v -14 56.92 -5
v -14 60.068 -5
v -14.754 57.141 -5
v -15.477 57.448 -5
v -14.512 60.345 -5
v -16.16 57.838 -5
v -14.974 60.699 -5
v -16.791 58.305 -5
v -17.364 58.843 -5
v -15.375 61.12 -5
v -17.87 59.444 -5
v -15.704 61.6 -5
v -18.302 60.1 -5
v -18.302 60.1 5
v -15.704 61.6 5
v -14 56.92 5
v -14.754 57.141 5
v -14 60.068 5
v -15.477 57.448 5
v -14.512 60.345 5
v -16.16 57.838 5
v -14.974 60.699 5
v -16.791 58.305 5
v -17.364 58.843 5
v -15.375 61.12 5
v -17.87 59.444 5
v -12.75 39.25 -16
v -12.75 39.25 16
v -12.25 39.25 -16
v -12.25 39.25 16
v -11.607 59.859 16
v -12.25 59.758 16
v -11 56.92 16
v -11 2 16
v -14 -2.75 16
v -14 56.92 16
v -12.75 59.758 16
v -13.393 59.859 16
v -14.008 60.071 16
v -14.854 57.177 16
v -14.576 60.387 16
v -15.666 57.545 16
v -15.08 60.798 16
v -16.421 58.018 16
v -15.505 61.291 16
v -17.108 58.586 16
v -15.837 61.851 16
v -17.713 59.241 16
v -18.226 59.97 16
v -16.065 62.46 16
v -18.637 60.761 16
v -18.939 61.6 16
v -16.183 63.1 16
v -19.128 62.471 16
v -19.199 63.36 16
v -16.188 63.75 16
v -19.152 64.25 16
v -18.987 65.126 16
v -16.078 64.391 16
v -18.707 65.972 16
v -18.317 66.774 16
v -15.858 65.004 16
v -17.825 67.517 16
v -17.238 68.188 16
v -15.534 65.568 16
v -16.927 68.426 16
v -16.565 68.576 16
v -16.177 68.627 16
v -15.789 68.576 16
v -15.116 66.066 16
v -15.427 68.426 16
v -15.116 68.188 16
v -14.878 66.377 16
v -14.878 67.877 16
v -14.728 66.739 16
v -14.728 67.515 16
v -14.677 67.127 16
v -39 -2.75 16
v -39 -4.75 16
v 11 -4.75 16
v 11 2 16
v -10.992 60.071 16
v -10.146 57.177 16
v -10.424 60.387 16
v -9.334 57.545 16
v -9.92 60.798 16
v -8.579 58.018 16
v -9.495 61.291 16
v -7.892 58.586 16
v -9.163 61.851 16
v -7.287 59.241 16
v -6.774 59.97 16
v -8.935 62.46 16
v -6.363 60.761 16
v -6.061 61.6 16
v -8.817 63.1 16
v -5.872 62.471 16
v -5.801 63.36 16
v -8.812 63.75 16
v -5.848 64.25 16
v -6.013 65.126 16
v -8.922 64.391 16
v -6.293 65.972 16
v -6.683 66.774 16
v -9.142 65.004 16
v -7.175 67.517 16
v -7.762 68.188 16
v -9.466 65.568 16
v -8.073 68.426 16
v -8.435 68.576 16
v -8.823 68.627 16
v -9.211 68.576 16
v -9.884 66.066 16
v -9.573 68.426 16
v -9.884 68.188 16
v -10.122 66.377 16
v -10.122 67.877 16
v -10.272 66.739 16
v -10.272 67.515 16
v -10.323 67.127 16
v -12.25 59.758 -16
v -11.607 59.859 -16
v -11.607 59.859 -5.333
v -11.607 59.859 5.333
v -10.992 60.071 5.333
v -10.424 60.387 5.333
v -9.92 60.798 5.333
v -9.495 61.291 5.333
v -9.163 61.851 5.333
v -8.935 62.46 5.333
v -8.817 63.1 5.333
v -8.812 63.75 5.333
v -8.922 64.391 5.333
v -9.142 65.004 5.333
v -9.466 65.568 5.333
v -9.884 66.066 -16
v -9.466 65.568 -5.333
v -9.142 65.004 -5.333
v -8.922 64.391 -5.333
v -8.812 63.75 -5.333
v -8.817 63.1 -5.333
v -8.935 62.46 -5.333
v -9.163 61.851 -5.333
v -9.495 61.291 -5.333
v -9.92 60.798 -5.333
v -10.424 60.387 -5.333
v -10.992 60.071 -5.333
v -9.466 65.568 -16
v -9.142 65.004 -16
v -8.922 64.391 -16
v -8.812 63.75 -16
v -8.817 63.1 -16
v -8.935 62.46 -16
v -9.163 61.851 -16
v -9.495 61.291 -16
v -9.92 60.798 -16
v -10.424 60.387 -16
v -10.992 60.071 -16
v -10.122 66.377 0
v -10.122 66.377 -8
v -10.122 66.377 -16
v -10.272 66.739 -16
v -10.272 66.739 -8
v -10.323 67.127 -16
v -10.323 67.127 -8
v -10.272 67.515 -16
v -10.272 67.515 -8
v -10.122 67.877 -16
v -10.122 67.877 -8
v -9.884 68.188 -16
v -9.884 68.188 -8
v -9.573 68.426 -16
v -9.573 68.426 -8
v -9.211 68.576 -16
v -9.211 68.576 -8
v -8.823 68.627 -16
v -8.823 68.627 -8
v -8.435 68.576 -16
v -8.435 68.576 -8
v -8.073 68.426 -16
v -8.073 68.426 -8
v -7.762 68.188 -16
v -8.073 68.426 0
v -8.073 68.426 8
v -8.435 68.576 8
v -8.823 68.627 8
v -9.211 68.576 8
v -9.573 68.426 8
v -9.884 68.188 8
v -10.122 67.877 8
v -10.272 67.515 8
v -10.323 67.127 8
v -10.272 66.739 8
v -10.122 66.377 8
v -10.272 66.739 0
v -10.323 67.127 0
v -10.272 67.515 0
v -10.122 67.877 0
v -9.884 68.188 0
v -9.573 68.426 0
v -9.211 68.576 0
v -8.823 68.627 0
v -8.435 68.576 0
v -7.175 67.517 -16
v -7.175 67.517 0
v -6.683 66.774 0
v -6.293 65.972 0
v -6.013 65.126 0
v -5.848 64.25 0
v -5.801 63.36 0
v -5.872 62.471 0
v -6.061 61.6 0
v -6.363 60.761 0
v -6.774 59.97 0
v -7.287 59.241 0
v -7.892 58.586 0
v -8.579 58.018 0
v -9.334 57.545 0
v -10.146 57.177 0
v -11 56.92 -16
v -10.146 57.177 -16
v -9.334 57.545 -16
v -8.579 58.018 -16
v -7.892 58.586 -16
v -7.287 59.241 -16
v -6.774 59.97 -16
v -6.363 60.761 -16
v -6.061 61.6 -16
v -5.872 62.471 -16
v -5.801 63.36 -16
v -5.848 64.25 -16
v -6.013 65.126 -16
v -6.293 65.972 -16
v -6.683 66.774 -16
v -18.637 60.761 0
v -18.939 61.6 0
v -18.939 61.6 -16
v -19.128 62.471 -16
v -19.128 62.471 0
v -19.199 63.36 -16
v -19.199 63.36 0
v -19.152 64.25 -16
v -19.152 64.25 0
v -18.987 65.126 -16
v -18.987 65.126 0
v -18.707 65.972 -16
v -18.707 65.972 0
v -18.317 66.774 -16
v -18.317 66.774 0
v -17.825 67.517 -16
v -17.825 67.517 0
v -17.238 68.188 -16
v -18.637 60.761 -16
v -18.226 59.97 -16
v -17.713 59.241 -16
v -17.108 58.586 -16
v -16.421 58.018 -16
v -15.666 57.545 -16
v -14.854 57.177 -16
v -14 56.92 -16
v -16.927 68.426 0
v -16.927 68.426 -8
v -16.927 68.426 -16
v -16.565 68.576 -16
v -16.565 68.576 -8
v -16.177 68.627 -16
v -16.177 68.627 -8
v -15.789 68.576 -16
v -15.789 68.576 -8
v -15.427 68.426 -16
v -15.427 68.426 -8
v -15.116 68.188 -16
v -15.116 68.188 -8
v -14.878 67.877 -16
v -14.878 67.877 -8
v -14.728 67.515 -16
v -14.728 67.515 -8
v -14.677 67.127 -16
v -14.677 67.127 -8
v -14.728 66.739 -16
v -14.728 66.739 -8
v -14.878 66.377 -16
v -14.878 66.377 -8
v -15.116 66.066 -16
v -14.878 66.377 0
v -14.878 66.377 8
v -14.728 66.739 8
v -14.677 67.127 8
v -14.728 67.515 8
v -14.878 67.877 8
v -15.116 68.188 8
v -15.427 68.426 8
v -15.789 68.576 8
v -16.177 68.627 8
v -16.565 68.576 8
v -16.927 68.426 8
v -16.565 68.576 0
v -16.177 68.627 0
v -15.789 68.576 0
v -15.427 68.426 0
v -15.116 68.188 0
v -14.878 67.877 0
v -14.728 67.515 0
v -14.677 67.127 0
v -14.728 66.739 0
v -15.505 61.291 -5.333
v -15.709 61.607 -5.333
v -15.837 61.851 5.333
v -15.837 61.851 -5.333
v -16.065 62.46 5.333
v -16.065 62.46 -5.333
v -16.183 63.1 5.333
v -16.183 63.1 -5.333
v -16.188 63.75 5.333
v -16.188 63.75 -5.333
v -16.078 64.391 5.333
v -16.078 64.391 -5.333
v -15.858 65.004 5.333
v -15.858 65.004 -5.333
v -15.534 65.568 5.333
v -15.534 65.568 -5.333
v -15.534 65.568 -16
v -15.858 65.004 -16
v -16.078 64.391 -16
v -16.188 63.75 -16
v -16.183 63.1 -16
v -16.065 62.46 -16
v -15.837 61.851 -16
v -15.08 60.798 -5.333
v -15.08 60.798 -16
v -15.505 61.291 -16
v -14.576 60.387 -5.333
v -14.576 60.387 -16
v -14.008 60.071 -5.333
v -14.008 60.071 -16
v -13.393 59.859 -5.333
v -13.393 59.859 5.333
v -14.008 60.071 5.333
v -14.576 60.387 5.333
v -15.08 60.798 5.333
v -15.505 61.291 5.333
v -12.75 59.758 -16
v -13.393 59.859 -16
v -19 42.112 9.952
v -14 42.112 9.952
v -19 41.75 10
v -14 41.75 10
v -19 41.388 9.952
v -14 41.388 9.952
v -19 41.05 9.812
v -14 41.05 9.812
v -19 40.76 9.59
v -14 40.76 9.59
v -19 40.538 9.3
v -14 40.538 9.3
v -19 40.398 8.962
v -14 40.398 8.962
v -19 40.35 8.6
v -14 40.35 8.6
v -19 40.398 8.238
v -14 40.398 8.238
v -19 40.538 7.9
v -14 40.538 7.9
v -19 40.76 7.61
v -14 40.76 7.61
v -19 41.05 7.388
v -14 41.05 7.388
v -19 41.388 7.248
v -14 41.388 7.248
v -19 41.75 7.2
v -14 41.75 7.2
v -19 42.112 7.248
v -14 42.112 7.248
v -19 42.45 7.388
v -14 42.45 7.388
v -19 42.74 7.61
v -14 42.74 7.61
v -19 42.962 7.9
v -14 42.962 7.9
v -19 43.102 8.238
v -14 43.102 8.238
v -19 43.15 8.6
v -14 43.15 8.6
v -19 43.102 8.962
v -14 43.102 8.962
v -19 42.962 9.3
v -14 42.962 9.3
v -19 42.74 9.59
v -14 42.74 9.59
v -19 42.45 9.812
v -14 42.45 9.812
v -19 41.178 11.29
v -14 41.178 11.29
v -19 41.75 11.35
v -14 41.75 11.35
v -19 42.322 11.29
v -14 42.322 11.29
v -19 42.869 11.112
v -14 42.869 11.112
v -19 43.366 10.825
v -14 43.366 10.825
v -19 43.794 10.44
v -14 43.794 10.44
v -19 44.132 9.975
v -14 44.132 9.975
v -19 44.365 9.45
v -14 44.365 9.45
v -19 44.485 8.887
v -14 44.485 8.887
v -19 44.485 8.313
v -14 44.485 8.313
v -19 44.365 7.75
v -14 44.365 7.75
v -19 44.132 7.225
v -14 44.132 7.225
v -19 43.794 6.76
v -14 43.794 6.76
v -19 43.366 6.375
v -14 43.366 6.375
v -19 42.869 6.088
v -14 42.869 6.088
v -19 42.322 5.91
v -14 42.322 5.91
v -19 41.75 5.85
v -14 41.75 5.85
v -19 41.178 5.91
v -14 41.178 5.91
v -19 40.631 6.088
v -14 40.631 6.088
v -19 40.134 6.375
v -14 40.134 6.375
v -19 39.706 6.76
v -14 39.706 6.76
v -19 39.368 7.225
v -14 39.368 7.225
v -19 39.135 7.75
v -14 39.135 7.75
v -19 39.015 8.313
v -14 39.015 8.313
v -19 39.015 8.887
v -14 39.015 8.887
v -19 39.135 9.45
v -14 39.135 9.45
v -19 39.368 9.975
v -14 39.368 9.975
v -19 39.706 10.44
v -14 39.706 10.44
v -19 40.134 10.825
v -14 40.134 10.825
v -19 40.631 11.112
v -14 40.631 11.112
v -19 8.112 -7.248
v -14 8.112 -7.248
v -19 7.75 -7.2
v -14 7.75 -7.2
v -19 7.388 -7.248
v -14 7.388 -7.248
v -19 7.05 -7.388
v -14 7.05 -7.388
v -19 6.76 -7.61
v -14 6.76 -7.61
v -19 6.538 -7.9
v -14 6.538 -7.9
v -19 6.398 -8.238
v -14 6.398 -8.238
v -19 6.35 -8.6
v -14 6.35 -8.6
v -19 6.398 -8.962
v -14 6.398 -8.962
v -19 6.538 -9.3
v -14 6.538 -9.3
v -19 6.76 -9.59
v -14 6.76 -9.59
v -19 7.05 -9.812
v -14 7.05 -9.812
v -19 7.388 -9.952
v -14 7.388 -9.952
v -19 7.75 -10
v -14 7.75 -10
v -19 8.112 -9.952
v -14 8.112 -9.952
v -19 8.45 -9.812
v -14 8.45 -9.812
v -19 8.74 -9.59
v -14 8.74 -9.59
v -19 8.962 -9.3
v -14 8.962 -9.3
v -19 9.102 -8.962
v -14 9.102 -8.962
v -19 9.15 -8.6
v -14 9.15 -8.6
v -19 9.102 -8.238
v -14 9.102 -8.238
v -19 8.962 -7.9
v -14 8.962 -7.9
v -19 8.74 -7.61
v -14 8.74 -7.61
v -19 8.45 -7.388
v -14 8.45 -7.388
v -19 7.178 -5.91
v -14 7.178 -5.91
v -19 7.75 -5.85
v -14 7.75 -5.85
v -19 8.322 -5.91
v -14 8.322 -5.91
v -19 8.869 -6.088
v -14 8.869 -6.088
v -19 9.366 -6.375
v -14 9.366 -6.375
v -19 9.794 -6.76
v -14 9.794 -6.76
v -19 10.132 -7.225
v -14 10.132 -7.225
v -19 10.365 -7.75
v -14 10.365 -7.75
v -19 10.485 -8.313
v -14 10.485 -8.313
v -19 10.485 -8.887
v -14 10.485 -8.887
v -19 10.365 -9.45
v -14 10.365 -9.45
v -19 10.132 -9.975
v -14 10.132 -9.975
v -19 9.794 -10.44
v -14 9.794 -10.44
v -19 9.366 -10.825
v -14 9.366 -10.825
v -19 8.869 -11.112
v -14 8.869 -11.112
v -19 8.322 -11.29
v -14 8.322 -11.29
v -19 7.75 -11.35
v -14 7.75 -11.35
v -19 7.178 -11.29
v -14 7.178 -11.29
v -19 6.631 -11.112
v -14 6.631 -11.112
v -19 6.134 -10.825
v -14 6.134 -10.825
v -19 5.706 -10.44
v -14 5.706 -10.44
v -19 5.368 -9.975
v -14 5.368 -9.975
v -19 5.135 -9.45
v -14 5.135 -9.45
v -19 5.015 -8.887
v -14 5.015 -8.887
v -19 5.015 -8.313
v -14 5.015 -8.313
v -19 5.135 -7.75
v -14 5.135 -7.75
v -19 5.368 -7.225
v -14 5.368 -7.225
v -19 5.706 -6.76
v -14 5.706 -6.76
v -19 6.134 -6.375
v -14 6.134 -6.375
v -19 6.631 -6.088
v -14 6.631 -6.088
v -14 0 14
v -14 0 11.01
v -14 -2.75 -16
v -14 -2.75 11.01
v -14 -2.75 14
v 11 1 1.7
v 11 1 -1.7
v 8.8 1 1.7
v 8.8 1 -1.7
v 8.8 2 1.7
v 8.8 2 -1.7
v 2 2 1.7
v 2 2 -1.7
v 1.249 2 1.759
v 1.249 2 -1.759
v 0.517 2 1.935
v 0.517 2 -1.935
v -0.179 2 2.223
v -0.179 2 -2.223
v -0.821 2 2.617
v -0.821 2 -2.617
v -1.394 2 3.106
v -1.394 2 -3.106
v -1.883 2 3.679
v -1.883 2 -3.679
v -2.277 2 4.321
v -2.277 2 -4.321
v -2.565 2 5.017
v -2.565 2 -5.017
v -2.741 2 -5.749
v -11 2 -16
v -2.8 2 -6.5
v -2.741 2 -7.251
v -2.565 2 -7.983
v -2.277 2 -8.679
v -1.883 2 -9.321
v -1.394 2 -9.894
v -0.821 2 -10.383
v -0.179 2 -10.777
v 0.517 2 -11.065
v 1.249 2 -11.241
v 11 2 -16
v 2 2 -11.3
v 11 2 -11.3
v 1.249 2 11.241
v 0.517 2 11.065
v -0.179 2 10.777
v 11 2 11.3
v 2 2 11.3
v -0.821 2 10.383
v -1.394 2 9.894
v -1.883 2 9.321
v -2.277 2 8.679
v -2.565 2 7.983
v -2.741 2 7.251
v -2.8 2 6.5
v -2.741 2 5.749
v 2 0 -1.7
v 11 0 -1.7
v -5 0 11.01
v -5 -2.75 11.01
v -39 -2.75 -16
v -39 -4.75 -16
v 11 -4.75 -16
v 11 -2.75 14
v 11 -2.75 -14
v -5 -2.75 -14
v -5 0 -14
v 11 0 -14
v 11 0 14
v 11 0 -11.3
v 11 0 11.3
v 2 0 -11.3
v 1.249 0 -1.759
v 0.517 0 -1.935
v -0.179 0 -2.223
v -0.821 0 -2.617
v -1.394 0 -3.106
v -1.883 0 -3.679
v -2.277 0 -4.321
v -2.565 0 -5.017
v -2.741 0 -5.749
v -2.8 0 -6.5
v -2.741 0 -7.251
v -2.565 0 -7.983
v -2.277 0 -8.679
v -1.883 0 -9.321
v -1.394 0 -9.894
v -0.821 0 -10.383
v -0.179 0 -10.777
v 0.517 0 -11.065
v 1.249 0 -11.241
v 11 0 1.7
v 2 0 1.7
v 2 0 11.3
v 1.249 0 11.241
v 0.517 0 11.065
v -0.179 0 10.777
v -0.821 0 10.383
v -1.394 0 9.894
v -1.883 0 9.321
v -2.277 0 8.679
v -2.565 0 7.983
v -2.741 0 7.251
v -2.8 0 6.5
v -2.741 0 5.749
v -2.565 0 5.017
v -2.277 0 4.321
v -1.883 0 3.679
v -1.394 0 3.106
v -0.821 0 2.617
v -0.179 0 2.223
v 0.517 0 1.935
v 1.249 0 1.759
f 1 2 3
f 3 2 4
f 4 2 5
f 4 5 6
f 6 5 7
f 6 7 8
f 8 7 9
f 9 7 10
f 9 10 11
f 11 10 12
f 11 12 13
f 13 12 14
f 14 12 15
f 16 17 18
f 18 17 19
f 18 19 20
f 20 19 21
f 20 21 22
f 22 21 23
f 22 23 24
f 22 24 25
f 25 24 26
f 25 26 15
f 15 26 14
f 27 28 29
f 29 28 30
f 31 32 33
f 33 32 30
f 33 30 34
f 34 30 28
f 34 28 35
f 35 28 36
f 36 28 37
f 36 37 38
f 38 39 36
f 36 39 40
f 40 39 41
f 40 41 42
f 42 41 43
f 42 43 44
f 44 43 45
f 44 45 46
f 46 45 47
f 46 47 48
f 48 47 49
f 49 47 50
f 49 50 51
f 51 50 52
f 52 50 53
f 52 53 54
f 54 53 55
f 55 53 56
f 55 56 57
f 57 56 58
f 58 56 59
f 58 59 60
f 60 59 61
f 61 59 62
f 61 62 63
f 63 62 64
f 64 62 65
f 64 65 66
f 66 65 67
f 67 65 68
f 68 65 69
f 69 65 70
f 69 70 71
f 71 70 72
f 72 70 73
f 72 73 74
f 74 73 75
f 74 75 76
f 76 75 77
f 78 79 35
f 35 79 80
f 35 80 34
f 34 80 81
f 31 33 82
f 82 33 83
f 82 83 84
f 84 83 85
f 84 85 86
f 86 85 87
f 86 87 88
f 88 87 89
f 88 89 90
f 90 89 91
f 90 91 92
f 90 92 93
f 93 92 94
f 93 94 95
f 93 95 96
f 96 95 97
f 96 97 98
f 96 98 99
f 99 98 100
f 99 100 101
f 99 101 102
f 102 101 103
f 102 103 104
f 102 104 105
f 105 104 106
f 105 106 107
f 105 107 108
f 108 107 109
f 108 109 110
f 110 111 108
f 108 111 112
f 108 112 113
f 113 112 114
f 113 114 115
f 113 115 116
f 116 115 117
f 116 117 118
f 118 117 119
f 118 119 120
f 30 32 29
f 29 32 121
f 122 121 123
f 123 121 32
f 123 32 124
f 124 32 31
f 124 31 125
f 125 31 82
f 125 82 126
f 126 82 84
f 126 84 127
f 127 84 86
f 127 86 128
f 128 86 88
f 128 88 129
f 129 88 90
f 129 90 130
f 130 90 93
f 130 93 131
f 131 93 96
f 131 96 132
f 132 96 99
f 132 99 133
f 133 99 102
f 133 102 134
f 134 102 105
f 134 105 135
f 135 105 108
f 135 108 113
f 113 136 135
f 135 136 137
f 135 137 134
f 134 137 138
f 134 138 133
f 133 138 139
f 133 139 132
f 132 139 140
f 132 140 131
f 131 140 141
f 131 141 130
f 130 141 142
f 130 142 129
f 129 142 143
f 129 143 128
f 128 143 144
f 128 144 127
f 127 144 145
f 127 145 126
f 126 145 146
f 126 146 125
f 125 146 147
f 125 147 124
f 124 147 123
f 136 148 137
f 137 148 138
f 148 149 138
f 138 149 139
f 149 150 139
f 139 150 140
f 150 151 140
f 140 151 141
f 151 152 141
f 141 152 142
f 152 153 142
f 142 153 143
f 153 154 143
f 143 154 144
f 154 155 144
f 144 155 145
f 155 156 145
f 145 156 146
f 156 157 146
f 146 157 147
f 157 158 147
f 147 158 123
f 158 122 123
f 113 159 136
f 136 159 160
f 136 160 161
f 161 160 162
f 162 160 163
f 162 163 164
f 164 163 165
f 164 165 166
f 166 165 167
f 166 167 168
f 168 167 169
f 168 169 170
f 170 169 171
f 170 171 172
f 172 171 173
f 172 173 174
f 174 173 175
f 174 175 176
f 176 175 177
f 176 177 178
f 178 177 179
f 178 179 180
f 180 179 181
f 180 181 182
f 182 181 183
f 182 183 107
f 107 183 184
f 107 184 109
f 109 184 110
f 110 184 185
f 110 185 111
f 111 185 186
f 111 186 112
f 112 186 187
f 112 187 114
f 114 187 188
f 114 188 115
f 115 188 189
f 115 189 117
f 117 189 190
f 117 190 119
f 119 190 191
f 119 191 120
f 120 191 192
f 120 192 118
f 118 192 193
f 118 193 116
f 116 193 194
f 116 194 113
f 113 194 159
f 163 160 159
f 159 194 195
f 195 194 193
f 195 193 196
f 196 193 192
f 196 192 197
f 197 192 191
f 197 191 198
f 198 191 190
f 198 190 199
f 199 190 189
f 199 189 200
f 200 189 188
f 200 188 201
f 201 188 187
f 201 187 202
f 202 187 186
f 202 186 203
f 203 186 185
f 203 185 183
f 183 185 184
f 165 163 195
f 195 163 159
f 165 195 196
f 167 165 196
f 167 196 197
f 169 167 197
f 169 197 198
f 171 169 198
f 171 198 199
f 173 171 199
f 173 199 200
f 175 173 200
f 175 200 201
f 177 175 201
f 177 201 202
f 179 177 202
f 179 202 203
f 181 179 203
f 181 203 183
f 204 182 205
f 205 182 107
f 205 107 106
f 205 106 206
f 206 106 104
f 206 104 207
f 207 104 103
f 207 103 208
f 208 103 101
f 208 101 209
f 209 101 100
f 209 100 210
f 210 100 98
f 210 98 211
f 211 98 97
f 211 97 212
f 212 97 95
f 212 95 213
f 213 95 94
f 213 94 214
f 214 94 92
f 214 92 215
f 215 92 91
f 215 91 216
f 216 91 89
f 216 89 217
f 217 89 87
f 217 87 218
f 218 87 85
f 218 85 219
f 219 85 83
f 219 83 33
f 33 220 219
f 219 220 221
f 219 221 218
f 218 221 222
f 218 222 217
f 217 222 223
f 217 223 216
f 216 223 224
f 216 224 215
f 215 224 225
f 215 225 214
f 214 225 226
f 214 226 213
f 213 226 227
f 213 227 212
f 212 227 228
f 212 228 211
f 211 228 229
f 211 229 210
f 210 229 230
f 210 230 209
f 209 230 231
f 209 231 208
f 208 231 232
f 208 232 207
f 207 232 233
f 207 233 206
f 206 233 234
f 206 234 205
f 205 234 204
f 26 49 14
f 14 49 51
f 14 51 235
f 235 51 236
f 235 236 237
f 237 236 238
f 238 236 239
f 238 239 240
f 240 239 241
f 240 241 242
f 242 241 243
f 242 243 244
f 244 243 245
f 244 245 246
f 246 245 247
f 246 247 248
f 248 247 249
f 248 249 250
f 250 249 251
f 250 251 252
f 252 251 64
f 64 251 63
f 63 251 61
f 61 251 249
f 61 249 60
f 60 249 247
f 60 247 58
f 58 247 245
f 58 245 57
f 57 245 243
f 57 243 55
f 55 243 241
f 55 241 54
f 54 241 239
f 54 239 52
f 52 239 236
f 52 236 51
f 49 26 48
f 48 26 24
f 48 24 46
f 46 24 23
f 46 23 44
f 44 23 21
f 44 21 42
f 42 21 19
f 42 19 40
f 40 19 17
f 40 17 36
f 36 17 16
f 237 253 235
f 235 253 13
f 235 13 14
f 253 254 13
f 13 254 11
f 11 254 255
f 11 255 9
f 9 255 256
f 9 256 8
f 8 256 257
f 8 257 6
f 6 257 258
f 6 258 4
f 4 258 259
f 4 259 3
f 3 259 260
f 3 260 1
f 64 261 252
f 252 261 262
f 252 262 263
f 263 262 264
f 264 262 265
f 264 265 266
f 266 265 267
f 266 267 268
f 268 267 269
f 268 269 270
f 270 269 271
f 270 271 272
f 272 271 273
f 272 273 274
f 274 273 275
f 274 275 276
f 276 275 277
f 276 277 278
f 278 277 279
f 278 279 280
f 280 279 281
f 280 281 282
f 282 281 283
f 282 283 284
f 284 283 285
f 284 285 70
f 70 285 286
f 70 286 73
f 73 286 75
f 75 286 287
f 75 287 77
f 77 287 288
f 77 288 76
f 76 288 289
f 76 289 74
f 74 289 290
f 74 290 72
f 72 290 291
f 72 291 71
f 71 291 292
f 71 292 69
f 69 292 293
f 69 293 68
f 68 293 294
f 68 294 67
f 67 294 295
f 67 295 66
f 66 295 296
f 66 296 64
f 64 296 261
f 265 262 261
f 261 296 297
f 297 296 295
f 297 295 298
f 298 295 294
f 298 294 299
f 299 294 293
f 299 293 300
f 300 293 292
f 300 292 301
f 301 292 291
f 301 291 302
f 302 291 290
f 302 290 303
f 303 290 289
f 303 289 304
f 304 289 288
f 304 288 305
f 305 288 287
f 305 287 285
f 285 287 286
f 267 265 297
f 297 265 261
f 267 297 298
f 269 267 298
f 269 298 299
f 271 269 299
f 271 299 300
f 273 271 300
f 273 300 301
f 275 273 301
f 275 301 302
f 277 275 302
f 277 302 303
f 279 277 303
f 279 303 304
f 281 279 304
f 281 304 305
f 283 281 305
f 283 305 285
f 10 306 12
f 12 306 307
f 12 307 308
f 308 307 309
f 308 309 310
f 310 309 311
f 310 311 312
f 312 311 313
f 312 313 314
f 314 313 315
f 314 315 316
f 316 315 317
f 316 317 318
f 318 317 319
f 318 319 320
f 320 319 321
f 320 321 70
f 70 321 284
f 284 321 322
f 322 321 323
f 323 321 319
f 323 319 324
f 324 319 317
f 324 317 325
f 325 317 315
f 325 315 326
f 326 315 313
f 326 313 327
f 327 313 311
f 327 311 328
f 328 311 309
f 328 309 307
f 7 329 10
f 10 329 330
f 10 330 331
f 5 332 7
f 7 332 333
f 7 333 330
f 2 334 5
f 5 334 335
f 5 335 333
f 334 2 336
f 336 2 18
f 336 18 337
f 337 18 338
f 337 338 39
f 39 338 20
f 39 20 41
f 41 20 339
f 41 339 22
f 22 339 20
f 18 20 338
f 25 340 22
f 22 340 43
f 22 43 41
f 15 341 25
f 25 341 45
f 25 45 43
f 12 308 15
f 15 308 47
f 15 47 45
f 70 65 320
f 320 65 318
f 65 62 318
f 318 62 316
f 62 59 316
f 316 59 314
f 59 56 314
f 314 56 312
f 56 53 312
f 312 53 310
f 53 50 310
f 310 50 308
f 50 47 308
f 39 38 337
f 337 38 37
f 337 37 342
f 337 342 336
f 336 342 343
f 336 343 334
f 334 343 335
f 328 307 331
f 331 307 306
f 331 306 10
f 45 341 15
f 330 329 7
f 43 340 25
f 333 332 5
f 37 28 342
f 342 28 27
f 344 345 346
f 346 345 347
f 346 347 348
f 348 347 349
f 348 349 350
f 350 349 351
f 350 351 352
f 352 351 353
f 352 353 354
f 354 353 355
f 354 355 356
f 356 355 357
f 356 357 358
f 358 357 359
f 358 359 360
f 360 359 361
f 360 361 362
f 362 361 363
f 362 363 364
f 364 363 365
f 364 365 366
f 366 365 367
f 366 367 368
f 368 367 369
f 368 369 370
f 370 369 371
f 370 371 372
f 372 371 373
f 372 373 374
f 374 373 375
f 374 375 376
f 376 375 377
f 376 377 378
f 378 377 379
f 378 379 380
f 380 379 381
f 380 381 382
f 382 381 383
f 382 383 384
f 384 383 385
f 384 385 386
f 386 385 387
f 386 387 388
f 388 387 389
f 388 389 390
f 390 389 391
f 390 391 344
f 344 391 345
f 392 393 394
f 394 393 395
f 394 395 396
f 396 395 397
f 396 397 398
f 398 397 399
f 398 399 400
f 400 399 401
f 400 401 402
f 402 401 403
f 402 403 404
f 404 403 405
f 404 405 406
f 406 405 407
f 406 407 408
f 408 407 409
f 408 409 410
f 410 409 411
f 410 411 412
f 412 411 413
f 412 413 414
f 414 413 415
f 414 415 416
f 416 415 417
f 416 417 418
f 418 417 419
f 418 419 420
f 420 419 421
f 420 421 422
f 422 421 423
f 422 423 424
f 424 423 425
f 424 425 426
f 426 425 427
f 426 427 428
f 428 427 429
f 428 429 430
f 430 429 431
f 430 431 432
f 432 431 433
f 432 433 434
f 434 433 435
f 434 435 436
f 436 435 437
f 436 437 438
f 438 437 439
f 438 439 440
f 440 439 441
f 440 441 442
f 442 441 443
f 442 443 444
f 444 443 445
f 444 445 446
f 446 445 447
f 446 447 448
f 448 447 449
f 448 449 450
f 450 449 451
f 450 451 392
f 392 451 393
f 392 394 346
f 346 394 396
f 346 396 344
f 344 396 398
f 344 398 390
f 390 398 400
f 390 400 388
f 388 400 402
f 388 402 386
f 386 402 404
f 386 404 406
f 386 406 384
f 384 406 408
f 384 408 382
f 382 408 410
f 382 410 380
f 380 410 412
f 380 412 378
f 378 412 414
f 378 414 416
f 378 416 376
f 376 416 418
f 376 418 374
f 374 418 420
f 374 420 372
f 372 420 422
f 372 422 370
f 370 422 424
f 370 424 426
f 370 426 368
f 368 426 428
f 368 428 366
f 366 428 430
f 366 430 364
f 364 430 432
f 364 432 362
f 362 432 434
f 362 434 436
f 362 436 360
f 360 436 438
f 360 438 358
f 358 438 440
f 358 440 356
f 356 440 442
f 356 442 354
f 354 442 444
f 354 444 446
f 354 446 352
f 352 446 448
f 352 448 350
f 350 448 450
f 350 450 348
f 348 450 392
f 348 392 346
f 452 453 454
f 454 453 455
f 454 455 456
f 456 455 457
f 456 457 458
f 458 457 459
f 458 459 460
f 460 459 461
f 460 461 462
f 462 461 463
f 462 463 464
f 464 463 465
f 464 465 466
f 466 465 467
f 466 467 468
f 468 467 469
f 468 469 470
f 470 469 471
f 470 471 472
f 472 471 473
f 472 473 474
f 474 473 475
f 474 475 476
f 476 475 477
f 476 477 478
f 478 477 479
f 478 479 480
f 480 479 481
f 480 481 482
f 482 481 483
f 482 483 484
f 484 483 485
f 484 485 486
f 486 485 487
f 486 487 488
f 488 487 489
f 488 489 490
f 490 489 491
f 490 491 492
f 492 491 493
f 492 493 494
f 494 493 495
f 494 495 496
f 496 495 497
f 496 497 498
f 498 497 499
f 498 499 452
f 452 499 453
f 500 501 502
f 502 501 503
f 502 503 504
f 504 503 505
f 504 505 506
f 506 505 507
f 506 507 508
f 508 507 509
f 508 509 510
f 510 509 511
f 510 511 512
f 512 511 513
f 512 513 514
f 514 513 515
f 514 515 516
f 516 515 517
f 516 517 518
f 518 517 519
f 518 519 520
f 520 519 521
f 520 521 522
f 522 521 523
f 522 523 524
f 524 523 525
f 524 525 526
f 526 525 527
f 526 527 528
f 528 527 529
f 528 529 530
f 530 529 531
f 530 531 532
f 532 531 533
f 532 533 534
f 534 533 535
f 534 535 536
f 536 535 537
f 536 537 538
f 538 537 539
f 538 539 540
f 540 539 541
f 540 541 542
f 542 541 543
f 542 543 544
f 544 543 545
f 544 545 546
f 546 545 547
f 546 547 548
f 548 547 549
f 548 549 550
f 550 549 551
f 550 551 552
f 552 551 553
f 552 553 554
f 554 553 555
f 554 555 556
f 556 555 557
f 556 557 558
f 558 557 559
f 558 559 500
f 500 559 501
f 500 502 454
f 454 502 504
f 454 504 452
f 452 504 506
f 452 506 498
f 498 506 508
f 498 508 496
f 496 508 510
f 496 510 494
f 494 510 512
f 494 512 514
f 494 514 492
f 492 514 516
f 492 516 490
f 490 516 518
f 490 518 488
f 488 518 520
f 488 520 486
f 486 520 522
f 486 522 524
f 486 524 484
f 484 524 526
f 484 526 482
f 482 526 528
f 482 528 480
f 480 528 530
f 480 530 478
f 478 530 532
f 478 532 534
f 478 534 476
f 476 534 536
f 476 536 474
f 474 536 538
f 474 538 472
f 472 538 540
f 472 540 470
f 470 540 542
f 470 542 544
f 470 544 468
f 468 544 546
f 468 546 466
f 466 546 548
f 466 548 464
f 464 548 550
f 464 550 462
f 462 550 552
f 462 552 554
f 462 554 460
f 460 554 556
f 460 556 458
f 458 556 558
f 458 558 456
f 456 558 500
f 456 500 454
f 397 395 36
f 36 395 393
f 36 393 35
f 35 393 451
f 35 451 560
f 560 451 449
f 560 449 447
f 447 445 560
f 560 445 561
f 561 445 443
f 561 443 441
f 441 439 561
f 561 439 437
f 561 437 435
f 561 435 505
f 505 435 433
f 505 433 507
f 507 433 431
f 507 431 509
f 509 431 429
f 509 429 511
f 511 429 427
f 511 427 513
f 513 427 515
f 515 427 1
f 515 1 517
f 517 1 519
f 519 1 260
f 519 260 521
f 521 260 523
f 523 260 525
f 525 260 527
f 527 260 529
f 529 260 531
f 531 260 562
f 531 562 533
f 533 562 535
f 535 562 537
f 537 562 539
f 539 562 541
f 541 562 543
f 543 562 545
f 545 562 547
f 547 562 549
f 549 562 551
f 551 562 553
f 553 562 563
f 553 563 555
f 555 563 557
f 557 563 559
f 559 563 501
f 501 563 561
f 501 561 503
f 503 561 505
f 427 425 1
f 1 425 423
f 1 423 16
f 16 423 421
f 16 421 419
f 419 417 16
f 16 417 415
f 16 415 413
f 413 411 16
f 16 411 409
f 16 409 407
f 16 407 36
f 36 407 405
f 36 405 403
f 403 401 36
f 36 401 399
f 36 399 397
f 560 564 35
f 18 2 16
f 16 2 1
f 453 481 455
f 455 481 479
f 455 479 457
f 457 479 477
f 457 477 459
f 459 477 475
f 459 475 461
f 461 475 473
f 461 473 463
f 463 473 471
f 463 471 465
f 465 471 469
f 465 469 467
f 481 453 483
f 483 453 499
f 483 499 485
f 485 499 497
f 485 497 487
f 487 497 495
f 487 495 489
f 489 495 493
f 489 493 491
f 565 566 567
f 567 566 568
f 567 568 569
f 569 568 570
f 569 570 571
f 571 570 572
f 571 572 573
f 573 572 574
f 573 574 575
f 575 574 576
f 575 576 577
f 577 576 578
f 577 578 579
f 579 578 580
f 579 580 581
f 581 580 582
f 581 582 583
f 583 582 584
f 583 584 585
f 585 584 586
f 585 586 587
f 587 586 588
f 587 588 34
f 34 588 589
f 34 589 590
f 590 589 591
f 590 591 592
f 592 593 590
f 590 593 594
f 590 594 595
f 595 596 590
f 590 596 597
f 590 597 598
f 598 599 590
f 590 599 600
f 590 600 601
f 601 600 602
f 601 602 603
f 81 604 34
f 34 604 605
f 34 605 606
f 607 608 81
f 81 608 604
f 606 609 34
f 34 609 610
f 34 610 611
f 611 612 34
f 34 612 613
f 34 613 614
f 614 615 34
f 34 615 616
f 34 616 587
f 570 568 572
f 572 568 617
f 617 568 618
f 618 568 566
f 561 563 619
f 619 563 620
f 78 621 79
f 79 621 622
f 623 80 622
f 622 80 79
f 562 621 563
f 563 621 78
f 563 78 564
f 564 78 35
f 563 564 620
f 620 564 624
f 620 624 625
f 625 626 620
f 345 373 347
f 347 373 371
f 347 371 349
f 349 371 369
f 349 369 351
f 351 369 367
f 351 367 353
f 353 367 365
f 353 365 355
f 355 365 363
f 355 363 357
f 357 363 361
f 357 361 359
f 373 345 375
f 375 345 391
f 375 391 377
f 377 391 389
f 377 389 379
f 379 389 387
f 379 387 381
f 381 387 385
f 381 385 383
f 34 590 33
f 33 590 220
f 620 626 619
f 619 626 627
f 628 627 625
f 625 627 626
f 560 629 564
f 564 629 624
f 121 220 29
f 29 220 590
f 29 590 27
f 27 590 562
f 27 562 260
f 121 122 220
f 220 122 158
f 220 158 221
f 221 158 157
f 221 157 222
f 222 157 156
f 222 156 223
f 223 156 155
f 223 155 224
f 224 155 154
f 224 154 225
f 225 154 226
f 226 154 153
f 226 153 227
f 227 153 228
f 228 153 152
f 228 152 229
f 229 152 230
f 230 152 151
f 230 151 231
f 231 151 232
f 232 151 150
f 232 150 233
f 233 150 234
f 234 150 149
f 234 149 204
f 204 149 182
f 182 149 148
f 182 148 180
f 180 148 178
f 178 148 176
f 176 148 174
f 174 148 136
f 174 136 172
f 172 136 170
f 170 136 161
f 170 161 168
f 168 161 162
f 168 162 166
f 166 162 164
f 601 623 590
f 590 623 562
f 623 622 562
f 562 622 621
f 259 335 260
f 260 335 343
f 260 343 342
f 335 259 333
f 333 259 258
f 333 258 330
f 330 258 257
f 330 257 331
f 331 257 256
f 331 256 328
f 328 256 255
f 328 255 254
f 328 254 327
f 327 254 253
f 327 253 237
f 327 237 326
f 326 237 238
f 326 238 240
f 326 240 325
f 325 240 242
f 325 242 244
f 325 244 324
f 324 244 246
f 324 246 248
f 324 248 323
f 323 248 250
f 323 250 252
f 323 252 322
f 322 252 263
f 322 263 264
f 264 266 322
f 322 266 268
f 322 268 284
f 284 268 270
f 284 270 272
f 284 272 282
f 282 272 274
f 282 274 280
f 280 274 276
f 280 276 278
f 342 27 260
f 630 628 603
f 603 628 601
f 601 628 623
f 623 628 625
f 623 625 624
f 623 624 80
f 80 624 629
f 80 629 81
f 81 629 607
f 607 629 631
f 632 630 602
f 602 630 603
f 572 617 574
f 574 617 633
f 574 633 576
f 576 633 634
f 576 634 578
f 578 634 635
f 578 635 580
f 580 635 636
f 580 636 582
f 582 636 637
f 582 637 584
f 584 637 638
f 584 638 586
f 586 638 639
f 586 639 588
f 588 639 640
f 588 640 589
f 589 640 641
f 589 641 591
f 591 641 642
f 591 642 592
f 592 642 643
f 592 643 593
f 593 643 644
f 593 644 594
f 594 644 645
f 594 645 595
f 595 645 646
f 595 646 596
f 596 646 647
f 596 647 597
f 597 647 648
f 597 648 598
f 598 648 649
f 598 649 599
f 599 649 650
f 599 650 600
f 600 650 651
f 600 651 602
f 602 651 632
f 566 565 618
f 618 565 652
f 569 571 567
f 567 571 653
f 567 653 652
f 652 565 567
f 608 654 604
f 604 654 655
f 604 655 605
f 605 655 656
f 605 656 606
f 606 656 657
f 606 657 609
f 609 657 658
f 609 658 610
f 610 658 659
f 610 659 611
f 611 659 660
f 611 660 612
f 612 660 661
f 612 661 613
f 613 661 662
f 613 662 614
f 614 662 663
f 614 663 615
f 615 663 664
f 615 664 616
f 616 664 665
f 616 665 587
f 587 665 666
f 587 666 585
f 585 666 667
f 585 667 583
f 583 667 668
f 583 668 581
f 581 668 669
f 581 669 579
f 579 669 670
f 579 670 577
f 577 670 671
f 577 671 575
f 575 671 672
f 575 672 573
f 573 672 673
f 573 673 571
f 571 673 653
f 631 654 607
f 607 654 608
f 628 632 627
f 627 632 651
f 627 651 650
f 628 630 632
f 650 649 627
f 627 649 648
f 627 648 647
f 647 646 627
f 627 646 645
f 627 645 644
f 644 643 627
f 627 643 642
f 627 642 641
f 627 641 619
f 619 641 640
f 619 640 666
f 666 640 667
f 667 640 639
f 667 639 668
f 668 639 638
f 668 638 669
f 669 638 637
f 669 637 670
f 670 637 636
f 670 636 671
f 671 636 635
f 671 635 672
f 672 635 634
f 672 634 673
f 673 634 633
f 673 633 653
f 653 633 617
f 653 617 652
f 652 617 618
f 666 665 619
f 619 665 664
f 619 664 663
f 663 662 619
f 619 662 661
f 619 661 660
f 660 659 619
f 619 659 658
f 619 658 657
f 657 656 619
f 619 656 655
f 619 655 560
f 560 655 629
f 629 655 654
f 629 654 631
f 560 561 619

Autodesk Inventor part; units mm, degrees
ref_plane "YZ Plane" through (0, 0, 0) normal (1, 0, 0) x (0, 1, 0)
ref_plane "XZ Plane" through (0, 0, 0) normal (0, 1, 0) x (-1, 0, 0)
ref_plane "XY Plane" through (0, 0, 0) normal (0, 0, 1) x (1, 0, 0)
sketch "Sketch1" plane through (0, 0, 0) normal (0, 1, 0) x (-1, 0, 0)
  line L0 (11, -16) -> (-11, -16)
  line L1 (-11, -16) -> (-11, 16)
  line L2 (-11, 16) -> (11, 16)
  line L3 (11, 16) -> (11, -16)
  line L4 (11, -16) -> (-11, 16) construction
  line L5 (-11, -16) -> (11, 16) construction
  circle A0 centre (-2, 6.5) radius 4.8
  line L6 (-2, 6.5) -> (-2, -6.5)
  circle A1 centre (-2, -6.5) radius 4.8
  line L7 (-2, 11.3) -> (-11, 11.3)
  line L8 (-2, 1.7) -> (-11, 1.7)
  line L9 (-2, -1.7) -> (-11, -1.7)
  line L10 (-2, -11.3) -> (-11, -11.3)
  point P0 (0, 0)
  point P1 (-2, 0)
  dimension "d0" = 22
  dimension "d1" = 32
  dimension "d2" = 9.6
  dimension "d3" = 13
  dimension "d4" = 9.6
extrude "Extrusion1" add sketch "Sketch1" along normal blind 2 contours L0 L1 L10 A1 L6 A0 L7 L2 L3 | L1 L8 L6 L9
sketch "Sketch2" plane through (0, 0, 0) normal (0, -1, 0) x (1, 0, 0)
  line L0 (-11, 16) -> (11, 16) projected
  line L1 (11, 16) -> (-11, 16)
  line L2 (-11, -16) -> (-11, 16) projected
  line L3 (-11, 16) -> (-11, -16)
  line L4 (11, -16) -> (-11, -16) projected
  line L5 (-11, -16) -> (11, -16)
  line L6 (11, -16) -> (11, -14)
  line L7 (11, -11.3) -> (11, -16) projected
  line L8 (11, -14) -> (-5, -14)
  line L9 (-5, -14) -> (-5, 14)
  line L10 (-5, 14) -> (11, 14)
  line L11 (11, 16) -> (11, 11.3) projected
  point P0 (0, 0)
  dimension "d7" = 2
  dimension "d8" = 16
  dimension "d9" = 28
extrude "Extrusion2" add sketch "Sketch2" along normal blind 2.75
sketch "Sketch3" plane through (-11, 2, -16) normal (-1, 0, 0) x (0, 0, 1)
  line L0 (0, 0) -> (0, -4.75) projected
  line L1 (0, -4.75) -> (32, -4.75)
  line L2 (32, -4.75) -> (32, 49.75)
  line L3 (32, 49.75) -> (0, 49.75)
  line L4 (0, 49.75) -> (0, -4.75)
  point P0 (16, -2)
  dimension "d12" = 54.5
extrude "Extrusion3" add sketch "Sketch3" along normal blind 3
sketch "Sketch4" plane through (0, -2.75, 0) normal (0, -1, 0) x (1, 0, 0)
  line L0 (11, 16) -> (11, 11.3) projected
  line L1 (11, 16) -> (-39, 16)
  line L2 (-39, 16) -> (-39, -16)
  line L3 (-39, -16) -> (11, -16)
  line L4 (11, -16) -> (11, 16)
  point P0 (0, 0)
  dimension "d15" = 50
extrude "Extrusion4" add sketch "Sketch4" along normal blind 2
sketch "Sketch5" plane through (-5, 0, 14) normal (1, 0, 0) x (0, 0, -1)
  line L0 (0, 0) -> (0, -2.75) projected
  line L1 (30, -2.75) -> (-2, -2.75) projected
  line L2 (0, 0) -> (2.9896, 0)
  line L3 (2.9896, 0) -> (2.9896, -2.75)
  line L4 (2.9896, -2.75) -> (0, -2.5)
  line L5 (0, -2.5) -> (0, 0)
  point P0 (14, 0)
  dimension "d18" = 3
extrude "Extrusion5" cut sketch "Sketch5" against normal up to surface (9 mm away)
sketch "Sketch6" plane through (11, 0, 1.7) normal (1, 0, 0) x (0, 0, -1)
  line L0 (0, 0) -> (0, 2) projected
  line L1 (3.4, 0) -> (3.4, 2) projected
  line L2 (0, 1) -> (3.4, 1)
  line L3 (3.4, 1) -> (3.4, 2)
  line L4 (3.4, 2) -> (0, 2)
  line L5 (0, 2) -> (0, 1)
  point P0 (1.7, 0)
extrude "Extrusion6" cut sketch "Sketch6" against normal blind 2.2
sketch "Sketch8" plane through (-14, 2, -16) normal (-1, 0, 0) x (0, 0, 1)
  circle A0 centre (24.6, 39.75) radius 2.75
  circle A1 centre (24.6, 39.75) radius 1.4
  line L0 (4, 47.25) -> (28, 47.25) construction
  line L1 (28, 47.25) -> (28, -1.75) construction
  line L2 (28, -1.75) -> (4, -1.75) construction
  line L3 (4, -1.75) -> (4, 47.25) construction
  circle A2 centre (7.4, 5.75) radius 2.75
  circle A3 centre (7.4, 5.75) radius 1.4
  line L4 (4, 47.25) -> (28, -1.75) construction
  line L5 (32, -4.75) -> (32, -6.75) construction
  line L6 (32, 49.75) -> (0, 49.75) construction
  line L7 (0, -4.75) -> (32, 49.75) construction
  point P0 (16, -2)
  point P1 (16, 22.75)
  point P2 (16, 22.5)
  dimension "d24" = 5.5
  dimension "d25" = 2.8
  dimension "d26" = 24
  dimension "d27" = 49
  dimension "d28" = 3.4
  dimension "d29" = 7.5
  dimension "d30" = 5.5
  dimension "d31" = 2.8
  dimension "d32" = 3.4
  dimension "d33" = 7.5
extrude "Extrusion7" add sketch "Sketch8" along normal blind 5
sketch "Sketch9" plane through (0, 0, 0) normal (0, 0, 1) x (1, 0, 0)
  line L0 (-14, -2.75) -> (-14, 51.75) projected
  line L1 (-12.5, 56.75) -> (-12.5, 54.25) construction
  line L2 (-12.25, 56.75) -> (-12.25, 54.25)
  line L3 (-12.25, 54.25) -> (-12.75, 54.25)
  line L4 (-12.75, 54.25) -> (-12.75, 56.75)
  line L5 (-12.75, 56.75) -> (-12.25, 54.25) construction
  line L6 (-12.25, 56.75) -> (-12.75, 54.25) construction
  circle A0 centre (-12.5, 63.45) radius 3.7
  circle A1 centre (-12.5, 63.45) radius 6.7
  line L7 (-12.5, 63.45) -> (-12.5, 56.75) construction
  line L8 (-12.25, 56.75) -> (-12.25, 59.7585)
  line L9 (-12.25, 59.7585) -> (-12.75, 59.7585)
  line L10 (-12.75, 59.7585) -> (-12.75, 56.75)
  line L11 (-12.75, 59.7585) -> (-12.25, 59.7585)
  line L12 (-12.25, 59.7585) -> (-12.25, 70.1453)
  line L13 (-12.25, 70.1453) -> (-12.75, 70.1453)
  line L14 (-12.75, 70.1453) -> (-12.75, 59.7585)
  line L15 (-12.5, 63.45) -> (-5.8, 63.45) construction
  line L16 (-12.5, 63.45) -> (-5.8, 63.45) construction
  line L17 (-7.7624, 68.1876) -> (-9.8837, 66.0663) construction
  line L18 (-17.2376, 68.1876) -> (-15.1163, 66.0663) construction
  circle A2 centre (-16.177, 67.127) radius 1.5
  circle A3 centre (-8.823, 67.127) radius 1.5
  line L19 (-11, 51.75) -> (-14, 51.75) projected
  line L20 (-14, 51.75) -> (-11, 51.75)
  line L21 (-11, 51.75) -> (-11, 56.75)
  line L22 (-11, 56.75) -> (-14, 56.75)
  line L23 (-14, 56.75) -> (-14, 51.75)
  line L24 (-14, 56.75) -> (-11, 56.75)
  line L25 (-11, 56.75) -> (-11, 56.9201)
  line L26 (-11, 56.9201) -> (-14, 56.9201)
  line L27 (-14, 56.9201) -> (-14, 56.75)
  point P0 (0, 0)
  point P1 (-12.5, 55.5)
  point P2 (-17.2376, 68.1876)
  point P3 (-12.75, 56.7547)
  point P4 (-12.25, 56.7547)
  point P5 (-7.7624, 68.1876)
  dimension "d47" = 0.5
  dimension "d48" = 7.4
  dimension "d49" = 13.4
  dimension "d50" = 5
extrude "Extrusion8" add sketch "Sketch9" along normal mid plane 32 contours L22 L21 L19 L23 L4 L3 L2 | L8 A1 L25 L22 | L8 L26 A1 | L26 L8 A0 A3 A1 | L10 L22 L27 A1 | A1 L26 L10 | L26 A1 A2 A0 L10 | A3 | A2
sketch "Sketch10" plane through (-11, 2, 16) normal (0, 0, 1) x (1, 0, 0)
  line L0 (-1.75, 52.25) -> (-1.25, 52.25) projected
  line L1 (-1.75, 52.25) -> (-1.25, 52.25)
  line L2 (-1.25, 52.25) -> (-1.25, 37.25)
  line L3 (-1.25, 37.25) -> (-1.75, 37.25)
  line L4 (-1.75, 37.25) -> (-1.75, 52.25)
  point P0 (11, -2)
  dimension "d51" = 15
extrude "Extrusion9" cut sketch "Sketch10" against normal through all
sketch "Sketch11" plane through (0, 0, 0) normal (0, 0, 1) x (1, 0, 0)
  line L0 (-14, -2.75) -> (-14, 56.9201) projected
  line L1 (-14, 56.9201) -> (-14, 60.0677)
  arc A0 (-15.1163, 66.0663) -> (-12.75, 59.7585) centre (-12.5, 63.45) ccw projected
  line L2 (-12.5, 63.45) -> (-18.3024, 60.1)
  arc A1 (-17.2376, 68.1876) -> (-14, 56.9201) centre (-12.5, 63.45) ccw projected
  point P0 (0, 0)
  point P1 (-15.7043, 61.6)
  dimension "d56" = 60
extrude "Extrusion10" cut sketch "Sketch11" along normal mid plane 10
properties part number "prototype_8_1_3DPrint"
